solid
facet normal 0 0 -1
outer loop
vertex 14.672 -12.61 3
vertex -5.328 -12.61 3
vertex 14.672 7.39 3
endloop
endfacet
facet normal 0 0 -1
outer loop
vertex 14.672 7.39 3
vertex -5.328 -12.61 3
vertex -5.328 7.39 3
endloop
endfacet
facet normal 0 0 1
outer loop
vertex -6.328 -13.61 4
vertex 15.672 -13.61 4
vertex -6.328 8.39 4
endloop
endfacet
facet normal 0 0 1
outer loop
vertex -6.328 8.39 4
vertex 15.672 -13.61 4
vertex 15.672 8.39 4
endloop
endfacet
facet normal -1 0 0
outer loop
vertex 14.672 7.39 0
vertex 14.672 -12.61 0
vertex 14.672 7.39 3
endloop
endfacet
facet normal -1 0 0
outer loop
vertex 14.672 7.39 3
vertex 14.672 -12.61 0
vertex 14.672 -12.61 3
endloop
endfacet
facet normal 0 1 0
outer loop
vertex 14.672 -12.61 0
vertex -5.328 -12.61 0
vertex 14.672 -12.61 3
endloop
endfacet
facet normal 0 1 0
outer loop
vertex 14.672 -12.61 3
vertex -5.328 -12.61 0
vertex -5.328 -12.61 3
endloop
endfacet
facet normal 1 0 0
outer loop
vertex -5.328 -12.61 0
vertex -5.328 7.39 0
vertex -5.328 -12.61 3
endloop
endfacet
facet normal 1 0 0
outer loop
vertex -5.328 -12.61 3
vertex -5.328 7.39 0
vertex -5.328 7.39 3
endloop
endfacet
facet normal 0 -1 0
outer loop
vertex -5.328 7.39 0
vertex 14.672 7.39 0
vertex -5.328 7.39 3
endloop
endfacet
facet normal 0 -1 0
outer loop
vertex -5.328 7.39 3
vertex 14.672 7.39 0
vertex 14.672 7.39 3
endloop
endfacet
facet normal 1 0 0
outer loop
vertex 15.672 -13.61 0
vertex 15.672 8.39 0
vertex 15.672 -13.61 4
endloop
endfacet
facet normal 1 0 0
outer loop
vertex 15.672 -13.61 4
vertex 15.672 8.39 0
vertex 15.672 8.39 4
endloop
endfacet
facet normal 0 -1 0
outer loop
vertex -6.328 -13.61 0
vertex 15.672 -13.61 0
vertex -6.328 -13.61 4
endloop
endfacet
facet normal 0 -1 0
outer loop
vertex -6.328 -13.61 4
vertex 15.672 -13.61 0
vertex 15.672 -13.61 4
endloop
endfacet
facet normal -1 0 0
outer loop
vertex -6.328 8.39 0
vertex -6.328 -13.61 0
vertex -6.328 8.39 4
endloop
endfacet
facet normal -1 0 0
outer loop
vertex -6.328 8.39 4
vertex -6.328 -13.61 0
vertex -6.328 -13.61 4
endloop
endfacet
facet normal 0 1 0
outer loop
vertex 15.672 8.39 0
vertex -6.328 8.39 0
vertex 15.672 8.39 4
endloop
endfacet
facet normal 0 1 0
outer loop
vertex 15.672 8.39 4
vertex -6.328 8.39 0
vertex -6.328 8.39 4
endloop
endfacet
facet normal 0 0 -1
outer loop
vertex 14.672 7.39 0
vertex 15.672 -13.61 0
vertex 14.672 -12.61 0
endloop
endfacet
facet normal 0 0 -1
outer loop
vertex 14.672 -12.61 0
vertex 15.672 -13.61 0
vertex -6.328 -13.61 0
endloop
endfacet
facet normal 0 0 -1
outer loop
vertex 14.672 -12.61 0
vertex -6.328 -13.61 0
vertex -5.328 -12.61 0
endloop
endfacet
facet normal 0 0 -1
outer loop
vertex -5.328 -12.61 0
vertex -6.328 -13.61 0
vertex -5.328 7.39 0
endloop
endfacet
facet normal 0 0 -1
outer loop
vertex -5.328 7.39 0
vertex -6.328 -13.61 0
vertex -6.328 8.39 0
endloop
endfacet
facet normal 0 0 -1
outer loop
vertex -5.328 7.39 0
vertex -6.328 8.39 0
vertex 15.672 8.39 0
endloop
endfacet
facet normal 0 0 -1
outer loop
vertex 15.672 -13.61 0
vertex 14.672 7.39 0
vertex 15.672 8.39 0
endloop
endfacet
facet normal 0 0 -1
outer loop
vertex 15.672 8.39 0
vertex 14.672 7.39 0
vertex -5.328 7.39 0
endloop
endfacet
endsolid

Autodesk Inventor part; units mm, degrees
ref_plane "YZ Plane" through (0, 0, 0) normal (1, 0, 0) x (0, 1, 0)
ref_plane "XZ Plane" through (0, 0, 0) normal (0, 1, 0) x (-1, 0, 0)
ref_plane "XY Plane" through (0, 0, 0) normal (0, 0, 1) x (1, 0, 0)
sketch "Sketch1" plane through (0, 0, 0) normal (0, 0, 1) x (1, 0, 0)
  line L0 (-5.3279, 7.3898) -> (14.6721, 7.3898)
  line L1 (14.6721, 7.3898) -> (14.6721, -12.6102)
  line L2 (14.6721, -12.6102) -> (-5.3279, -12.6102)
  line L3 (-5.3279, -12.6102) -> (-5.3279, 7.3898)
  line L4 (-6.3279, 8.3898) -> (15.6721, 8.3898)
  line L5 (15.6721, 8.3898) -> (15.6721, -13.6102)
  line L6 (15.6721, -13.6102) -> (-6.3279, -13.6102)
  line L7 (-6.3279, -13.6102) -> (-6.3279, 8.3898)
  point P0 (0, 0)
  dimension "d0" = 20
  dimension "d1" = 20
  dimension "d2" = 22
  dimension "d3" = 22
  dimension "d4" = 1
  dimension "d5" = 1
extrude "Extrusion1" add sketch "Sketch1" along normal blind 3
sketch "Sketch2" plane through (0, 0, 3) normal (0, 0, 1) x (1, 0, 0)
  line L0 (15.6721, 8.3898) -> (-6.3279, 8.3898) projected
  line L1 (-6.3279, -13.6102) -> (15.6721, -13.6102)
  line L2 (15.6721, -13.6102) -> (15.6721, 8.3898)
  line L3 (15.6721, 8.3898) -> (-6.3279, 8.3898)
  line L4 (-6.3279, 8.3898) -> (-6.3279, -13.6102)
  point P0 (0, 0)
extrude "Extrusion2" add sketch "Sketch2" along normal blind 1
properties part number "sensor_cover"
